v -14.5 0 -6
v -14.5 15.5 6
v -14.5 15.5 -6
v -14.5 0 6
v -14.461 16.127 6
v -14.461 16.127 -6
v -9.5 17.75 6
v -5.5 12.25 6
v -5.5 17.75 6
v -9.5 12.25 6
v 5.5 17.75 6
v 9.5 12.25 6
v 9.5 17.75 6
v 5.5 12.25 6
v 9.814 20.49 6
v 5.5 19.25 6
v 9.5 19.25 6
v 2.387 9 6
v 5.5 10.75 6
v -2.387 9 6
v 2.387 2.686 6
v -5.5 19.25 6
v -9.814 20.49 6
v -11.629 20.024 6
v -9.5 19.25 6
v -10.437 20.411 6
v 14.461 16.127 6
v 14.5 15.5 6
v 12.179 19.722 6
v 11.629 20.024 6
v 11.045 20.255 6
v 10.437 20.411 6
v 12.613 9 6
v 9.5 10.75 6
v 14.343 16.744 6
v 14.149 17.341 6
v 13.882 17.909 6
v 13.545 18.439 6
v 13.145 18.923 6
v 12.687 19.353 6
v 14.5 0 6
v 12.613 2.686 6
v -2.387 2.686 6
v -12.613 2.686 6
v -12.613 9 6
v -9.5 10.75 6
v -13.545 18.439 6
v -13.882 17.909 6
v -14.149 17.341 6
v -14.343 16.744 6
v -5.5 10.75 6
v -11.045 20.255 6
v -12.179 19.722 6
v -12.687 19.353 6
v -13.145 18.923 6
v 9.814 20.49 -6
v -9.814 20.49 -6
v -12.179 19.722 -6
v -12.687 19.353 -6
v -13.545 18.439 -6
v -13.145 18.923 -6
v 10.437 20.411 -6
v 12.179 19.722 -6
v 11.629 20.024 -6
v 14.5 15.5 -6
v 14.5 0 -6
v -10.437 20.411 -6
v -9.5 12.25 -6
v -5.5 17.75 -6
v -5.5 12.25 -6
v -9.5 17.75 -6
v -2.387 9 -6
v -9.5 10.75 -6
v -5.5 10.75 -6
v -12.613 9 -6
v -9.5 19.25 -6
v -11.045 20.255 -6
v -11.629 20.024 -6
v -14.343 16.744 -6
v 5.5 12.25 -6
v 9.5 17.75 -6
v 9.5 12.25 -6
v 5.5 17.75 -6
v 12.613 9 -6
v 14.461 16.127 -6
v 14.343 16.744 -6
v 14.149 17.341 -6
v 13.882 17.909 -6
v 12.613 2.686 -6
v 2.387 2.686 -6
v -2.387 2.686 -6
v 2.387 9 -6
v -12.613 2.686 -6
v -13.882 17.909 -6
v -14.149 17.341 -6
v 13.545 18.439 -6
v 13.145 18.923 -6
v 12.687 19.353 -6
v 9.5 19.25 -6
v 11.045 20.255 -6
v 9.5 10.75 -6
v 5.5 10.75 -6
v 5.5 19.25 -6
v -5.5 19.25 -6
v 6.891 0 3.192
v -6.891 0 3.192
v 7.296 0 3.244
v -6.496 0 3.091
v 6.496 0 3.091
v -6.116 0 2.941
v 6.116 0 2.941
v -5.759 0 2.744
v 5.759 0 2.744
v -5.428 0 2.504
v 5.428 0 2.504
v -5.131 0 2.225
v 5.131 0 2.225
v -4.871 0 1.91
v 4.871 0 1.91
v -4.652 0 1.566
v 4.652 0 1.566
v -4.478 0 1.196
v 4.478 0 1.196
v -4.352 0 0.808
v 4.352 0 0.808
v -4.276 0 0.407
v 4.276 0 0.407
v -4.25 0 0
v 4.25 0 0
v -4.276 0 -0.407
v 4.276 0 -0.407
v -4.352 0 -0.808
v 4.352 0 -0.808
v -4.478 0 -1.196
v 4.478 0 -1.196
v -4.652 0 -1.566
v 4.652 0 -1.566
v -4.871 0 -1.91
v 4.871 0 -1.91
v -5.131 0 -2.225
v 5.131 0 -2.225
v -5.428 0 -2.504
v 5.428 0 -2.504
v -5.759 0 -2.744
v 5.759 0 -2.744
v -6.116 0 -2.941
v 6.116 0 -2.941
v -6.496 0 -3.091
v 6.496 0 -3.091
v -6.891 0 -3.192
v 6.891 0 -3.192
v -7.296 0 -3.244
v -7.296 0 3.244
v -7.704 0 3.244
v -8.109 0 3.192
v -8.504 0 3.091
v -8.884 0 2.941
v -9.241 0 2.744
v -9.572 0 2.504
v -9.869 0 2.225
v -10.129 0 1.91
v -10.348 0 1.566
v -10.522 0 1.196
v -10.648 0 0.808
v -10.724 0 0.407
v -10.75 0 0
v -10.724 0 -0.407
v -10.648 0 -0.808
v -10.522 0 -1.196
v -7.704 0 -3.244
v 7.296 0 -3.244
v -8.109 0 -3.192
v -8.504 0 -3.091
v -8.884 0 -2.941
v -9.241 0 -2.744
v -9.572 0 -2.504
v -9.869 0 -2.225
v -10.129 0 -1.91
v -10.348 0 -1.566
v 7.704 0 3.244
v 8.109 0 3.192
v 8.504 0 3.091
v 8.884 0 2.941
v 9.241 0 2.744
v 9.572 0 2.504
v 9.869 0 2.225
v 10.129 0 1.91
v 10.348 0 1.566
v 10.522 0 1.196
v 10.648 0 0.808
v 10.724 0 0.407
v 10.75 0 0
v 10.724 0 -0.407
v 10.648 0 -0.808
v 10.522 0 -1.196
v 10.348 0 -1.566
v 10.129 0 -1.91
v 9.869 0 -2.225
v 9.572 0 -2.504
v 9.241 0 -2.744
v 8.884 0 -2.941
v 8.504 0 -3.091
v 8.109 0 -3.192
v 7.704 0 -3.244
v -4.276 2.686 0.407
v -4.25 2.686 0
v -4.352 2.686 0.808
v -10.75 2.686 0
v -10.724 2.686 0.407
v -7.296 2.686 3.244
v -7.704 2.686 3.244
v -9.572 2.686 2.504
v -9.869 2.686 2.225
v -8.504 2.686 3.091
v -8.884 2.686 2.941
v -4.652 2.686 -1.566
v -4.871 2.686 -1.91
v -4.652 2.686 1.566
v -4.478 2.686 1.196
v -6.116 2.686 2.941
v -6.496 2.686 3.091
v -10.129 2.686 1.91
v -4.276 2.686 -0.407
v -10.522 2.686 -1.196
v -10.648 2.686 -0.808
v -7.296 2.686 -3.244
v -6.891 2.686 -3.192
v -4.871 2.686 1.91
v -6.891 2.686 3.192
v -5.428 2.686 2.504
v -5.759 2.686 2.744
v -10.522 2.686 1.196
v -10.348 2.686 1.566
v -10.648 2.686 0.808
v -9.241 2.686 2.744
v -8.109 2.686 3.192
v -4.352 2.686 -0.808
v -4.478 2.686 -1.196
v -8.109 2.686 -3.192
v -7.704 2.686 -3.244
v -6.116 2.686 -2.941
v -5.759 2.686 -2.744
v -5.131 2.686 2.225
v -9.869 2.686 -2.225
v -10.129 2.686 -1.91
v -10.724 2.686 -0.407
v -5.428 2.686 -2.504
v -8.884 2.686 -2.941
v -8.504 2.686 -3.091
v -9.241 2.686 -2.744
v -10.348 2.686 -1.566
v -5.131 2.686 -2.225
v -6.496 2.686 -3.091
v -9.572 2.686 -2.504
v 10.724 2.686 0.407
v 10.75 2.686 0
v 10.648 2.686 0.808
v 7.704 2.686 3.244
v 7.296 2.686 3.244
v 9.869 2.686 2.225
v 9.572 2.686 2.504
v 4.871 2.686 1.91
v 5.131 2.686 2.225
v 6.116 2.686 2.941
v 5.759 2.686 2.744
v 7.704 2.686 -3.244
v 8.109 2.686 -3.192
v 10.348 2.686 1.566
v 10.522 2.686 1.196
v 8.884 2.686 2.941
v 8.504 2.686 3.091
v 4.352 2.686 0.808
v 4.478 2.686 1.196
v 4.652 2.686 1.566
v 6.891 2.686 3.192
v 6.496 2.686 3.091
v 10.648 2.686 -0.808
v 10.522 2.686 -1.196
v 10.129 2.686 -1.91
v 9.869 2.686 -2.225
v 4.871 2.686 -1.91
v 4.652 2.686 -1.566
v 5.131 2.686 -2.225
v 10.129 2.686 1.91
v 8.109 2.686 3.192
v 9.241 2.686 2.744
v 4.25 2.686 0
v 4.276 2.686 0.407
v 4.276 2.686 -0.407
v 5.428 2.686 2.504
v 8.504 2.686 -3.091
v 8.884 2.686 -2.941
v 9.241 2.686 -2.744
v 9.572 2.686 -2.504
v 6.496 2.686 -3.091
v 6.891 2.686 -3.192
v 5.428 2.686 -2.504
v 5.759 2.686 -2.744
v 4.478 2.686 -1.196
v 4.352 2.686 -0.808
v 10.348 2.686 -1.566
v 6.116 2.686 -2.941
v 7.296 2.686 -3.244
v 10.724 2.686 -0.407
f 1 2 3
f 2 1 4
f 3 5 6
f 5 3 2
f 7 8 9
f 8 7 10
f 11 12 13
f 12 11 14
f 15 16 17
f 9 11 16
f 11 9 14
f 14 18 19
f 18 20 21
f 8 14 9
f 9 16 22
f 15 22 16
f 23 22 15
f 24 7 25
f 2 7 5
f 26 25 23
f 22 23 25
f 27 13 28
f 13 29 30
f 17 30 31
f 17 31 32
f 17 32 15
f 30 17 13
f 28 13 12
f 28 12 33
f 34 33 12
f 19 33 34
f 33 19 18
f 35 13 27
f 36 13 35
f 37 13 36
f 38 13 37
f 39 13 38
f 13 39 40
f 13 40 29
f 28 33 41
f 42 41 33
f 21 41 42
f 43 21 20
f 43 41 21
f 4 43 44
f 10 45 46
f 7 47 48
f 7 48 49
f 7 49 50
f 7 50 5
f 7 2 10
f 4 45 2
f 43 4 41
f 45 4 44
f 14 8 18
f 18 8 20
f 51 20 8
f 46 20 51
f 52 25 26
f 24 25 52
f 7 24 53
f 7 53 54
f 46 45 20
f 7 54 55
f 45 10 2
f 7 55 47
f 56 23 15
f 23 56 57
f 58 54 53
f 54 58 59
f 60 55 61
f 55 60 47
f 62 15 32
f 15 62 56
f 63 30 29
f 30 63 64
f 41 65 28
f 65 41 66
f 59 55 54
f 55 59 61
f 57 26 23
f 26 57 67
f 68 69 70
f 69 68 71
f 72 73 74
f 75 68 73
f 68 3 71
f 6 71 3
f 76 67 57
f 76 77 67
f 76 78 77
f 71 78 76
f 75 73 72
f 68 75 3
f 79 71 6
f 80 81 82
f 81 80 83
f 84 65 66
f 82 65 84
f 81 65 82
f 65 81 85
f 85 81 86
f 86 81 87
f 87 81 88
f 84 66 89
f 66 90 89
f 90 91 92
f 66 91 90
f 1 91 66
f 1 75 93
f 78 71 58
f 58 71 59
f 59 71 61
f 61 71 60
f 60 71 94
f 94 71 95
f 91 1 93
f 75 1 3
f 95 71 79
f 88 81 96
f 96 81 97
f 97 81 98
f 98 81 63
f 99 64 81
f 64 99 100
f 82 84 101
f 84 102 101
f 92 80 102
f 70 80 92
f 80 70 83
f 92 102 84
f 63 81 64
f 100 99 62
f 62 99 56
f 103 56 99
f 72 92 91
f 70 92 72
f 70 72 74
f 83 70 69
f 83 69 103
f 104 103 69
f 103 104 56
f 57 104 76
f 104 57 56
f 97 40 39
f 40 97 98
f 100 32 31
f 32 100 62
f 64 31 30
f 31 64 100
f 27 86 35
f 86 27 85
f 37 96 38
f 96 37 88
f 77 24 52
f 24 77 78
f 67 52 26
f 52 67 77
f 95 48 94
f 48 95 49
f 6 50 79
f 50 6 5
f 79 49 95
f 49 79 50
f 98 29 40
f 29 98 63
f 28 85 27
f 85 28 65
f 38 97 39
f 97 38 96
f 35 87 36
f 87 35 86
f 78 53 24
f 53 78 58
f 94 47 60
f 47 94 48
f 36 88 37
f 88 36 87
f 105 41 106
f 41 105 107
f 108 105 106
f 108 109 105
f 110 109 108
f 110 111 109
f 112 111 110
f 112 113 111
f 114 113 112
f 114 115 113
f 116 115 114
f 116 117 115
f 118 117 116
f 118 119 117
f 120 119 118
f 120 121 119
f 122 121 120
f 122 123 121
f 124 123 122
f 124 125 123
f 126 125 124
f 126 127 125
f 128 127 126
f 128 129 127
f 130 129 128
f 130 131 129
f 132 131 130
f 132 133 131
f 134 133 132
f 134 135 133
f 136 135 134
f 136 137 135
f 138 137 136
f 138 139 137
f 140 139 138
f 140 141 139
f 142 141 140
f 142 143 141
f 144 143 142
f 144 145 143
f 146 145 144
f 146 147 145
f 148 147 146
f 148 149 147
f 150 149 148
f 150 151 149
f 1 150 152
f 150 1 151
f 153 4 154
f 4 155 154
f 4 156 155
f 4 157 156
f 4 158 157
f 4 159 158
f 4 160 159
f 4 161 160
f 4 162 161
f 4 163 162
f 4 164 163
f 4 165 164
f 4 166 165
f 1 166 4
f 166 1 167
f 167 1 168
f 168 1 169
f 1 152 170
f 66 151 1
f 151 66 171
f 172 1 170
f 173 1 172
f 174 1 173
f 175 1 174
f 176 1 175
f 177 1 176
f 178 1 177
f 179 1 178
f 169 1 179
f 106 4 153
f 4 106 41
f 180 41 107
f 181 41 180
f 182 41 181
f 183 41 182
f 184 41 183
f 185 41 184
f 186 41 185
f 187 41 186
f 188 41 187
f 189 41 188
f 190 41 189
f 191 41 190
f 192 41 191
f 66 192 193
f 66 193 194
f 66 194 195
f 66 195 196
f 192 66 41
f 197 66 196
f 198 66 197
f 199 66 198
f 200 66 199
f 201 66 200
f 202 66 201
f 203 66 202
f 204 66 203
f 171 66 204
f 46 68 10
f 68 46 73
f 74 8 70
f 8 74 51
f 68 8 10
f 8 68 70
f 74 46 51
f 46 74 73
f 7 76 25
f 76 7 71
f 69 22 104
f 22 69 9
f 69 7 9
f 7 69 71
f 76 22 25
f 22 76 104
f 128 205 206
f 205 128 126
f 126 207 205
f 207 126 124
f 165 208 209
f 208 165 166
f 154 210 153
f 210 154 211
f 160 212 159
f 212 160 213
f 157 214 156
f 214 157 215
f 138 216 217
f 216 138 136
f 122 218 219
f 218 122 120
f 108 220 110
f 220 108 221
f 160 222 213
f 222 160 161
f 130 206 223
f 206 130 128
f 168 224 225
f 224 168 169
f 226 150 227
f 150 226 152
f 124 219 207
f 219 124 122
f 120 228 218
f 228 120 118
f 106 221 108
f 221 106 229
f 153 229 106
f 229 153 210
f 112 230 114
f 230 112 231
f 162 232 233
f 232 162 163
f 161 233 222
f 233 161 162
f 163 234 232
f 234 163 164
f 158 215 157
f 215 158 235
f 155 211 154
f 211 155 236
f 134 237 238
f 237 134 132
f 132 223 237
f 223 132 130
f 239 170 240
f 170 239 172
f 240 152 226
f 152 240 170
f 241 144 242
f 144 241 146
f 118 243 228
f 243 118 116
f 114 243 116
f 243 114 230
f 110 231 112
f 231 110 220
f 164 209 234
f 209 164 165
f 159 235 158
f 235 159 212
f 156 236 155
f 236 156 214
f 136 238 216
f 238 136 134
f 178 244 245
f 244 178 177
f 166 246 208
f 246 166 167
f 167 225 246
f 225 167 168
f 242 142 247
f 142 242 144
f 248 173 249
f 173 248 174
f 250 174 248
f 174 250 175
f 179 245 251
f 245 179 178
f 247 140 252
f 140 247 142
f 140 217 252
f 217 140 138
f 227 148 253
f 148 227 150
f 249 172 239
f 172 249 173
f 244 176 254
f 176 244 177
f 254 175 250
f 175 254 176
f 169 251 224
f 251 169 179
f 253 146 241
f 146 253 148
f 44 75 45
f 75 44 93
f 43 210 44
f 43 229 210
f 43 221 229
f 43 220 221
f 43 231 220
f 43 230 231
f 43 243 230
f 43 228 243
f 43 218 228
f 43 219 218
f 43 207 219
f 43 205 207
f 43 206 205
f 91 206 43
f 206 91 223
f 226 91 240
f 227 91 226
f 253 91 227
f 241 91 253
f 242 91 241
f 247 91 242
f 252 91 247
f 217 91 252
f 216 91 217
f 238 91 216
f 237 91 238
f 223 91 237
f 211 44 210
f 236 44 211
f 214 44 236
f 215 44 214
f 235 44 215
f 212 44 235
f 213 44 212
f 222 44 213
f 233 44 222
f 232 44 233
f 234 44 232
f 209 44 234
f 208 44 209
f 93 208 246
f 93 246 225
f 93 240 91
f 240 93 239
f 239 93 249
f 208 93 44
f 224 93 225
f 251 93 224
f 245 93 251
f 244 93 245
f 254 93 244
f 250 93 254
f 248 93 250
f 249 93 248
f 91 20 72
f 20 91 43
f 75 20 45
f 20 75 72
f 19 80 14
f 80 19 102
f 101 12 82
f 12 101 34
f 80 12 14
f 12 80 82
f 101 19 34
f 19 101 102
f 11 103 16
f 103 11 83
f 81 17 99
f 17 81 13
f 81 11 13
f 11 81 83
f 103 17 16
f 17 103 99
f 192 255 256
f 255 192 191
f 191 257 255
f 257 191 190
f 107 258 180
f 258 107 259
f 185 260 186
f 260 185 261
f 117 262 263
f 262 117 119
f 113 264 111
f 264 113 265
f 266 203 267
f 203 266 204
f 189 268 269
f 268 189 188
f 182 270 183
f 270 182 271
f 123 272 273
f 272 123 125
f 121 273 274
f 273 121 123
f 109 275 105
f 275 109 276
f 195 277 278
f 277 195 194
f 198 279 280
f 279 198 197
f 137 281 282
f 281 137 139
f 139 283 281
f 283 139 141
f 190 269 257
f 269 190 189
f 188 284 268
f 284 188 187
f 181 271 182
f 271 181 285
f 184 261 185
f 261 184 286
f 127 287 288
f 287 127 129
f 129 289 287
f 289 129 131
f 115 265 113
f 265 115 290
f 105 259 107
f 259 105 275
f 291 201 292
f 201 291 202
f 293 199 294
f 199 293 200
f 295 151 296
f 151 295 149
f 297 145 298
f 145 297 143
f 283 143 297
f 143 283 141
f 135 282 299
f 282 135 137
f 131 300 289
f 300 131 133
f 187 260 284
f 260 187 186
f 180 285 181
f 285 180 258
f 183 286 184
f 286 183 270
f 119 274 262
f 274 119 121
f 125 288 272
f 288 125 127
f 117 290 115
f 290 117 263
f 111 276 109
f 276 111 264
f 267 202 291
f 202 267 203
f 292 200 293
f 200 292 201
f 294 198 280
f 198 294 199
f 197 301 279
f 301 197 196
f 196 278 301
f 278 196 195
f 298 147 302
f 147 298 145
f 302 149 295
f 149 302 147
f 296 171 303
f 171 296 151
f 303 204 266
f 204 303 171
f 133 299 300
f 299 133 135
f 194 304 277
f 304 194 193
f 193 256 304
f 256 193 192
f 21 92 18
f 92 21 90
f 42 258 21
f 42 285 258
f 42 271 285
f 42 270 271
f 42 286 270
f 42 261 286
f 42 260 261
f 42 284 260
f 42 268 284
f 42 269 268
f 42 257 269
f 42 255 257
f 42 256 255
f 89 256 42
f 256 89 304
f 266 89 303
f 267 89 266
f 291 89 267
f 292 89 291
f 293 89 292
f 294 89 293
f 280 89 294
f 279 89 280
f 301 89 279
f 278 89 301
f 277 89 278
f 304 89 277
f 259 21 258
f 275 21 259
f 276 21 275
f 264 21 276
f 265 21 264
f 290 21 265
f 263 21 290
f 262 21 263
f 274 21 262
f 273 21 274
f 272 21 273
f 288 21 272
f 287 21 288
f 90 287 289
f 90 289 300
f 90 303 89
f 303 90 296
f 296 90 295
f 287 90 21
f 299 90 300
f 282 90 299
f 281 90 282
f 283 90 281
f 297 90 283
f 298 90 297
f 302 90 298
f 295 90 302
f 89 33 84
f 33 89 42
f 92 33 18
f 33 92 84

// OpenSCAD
$fn = 50;


difference() {
	union() {
		translate(v = [0, 13.5000000000, -6.0000000000]) {
			rotate(a = [0, 0, 0]) {
				hull() {
					translate(v = [-9.5000000000, 2.0000000000, 0]) {
						rotate(a = [0, 0, 0]) {
							translate(v = [0, 0, 0]) {
								rotate(a = [0, 0, 0]) {
									cylinder(h = 12, r = 5);
								}
							}
						}
					}
					translate(v = [9.5000000000, 2.0000000000, 0]) {
						rotate(a = [0, 0, 0]) {
							translate(v = [0, 0, 0]) {
								rotate(a = [0, 0, 0]) {
									cylinder(h = 12, r = 5);
								}
							}
						}
					}
					translate(v = [-9.5000000000, -2.0000000000, 0]) {
						rotate(a = [0, 0, 0]) {
							translate(v = [0, 0, 0]) {
								rotate(a = [0, 0, 0]) {
									cylinder(h = 12, r = 5);
								}
							}
						}
					}
					translate(v = [9.5000000000, -2.0000000000, 0]) {
						rotate(a = [0, 0, 0]) {
							translate(v = [0, 0, 0]) {
								rotate(a = [0, 0, 0]) {
									cylinder(h = 12, r = 5);
								}
							}
						}
					}
				}
			}
		}
		translate(v = [-14.5000000000, 0, -6.0000000000]) {
			rotate(a = [0, 0, 0]) {
				cube(size = [29, 13.5000000000, 12]);
			}
		}
	}
	union() {
		translate(v = [-9.5000000000, 10.7500000000, -50]) {
			rotate(a = [0, 0, 0]) {
				cube(size = [4, 1.5000000000, 100]);
			}
		}
		translate(v = [-9.5000000000, 17.7500000000, -50]) {
			rotate(a = [0, 0, 0]) {
				cube(size = [4, 1.5000000000, 100]);
			}
		}
		translate(v = [-7.5000000000, 8, 0]) {
			rotate(a = [90, 0, 0]) {
				cylinder(h = 8, r = 3.2500000000);
			}
		}
		translate(v = [-12.6126516464, 9, -25]) {
			rotate(a = [90, 0, 0]) {
				cube(size = [10.2253032929, 100, 6.3142500000]);
			}
		}
		translate(v = [5.5000000000, 10.7500000000, -50]) {
			rotate(a = [0, 0, 0]) {
				cube(size = [4, 1.5000000000, 100]);
			}
		}
		translate(v = [5.5000000000, 17.7500000000, -50]) {
			rotate(a = [0, 0, 0]) {
				cube(size = [4, 1.5000000000, 100]);
			}
		}
		translate(v = [7.5000000000, 8, 0]) {
			rotate(a = [90, 0, 0]) {
				cylinder(h = 8, r = 3.2500000000);
			}
		}
		translate(v = [2.3873483536, 9, -25]) {
			rotate(a = [90, 0, 0]) {
				cube(size = [10.2253032929, 100, 6.3142500000]);
			}
		}
	}
}
